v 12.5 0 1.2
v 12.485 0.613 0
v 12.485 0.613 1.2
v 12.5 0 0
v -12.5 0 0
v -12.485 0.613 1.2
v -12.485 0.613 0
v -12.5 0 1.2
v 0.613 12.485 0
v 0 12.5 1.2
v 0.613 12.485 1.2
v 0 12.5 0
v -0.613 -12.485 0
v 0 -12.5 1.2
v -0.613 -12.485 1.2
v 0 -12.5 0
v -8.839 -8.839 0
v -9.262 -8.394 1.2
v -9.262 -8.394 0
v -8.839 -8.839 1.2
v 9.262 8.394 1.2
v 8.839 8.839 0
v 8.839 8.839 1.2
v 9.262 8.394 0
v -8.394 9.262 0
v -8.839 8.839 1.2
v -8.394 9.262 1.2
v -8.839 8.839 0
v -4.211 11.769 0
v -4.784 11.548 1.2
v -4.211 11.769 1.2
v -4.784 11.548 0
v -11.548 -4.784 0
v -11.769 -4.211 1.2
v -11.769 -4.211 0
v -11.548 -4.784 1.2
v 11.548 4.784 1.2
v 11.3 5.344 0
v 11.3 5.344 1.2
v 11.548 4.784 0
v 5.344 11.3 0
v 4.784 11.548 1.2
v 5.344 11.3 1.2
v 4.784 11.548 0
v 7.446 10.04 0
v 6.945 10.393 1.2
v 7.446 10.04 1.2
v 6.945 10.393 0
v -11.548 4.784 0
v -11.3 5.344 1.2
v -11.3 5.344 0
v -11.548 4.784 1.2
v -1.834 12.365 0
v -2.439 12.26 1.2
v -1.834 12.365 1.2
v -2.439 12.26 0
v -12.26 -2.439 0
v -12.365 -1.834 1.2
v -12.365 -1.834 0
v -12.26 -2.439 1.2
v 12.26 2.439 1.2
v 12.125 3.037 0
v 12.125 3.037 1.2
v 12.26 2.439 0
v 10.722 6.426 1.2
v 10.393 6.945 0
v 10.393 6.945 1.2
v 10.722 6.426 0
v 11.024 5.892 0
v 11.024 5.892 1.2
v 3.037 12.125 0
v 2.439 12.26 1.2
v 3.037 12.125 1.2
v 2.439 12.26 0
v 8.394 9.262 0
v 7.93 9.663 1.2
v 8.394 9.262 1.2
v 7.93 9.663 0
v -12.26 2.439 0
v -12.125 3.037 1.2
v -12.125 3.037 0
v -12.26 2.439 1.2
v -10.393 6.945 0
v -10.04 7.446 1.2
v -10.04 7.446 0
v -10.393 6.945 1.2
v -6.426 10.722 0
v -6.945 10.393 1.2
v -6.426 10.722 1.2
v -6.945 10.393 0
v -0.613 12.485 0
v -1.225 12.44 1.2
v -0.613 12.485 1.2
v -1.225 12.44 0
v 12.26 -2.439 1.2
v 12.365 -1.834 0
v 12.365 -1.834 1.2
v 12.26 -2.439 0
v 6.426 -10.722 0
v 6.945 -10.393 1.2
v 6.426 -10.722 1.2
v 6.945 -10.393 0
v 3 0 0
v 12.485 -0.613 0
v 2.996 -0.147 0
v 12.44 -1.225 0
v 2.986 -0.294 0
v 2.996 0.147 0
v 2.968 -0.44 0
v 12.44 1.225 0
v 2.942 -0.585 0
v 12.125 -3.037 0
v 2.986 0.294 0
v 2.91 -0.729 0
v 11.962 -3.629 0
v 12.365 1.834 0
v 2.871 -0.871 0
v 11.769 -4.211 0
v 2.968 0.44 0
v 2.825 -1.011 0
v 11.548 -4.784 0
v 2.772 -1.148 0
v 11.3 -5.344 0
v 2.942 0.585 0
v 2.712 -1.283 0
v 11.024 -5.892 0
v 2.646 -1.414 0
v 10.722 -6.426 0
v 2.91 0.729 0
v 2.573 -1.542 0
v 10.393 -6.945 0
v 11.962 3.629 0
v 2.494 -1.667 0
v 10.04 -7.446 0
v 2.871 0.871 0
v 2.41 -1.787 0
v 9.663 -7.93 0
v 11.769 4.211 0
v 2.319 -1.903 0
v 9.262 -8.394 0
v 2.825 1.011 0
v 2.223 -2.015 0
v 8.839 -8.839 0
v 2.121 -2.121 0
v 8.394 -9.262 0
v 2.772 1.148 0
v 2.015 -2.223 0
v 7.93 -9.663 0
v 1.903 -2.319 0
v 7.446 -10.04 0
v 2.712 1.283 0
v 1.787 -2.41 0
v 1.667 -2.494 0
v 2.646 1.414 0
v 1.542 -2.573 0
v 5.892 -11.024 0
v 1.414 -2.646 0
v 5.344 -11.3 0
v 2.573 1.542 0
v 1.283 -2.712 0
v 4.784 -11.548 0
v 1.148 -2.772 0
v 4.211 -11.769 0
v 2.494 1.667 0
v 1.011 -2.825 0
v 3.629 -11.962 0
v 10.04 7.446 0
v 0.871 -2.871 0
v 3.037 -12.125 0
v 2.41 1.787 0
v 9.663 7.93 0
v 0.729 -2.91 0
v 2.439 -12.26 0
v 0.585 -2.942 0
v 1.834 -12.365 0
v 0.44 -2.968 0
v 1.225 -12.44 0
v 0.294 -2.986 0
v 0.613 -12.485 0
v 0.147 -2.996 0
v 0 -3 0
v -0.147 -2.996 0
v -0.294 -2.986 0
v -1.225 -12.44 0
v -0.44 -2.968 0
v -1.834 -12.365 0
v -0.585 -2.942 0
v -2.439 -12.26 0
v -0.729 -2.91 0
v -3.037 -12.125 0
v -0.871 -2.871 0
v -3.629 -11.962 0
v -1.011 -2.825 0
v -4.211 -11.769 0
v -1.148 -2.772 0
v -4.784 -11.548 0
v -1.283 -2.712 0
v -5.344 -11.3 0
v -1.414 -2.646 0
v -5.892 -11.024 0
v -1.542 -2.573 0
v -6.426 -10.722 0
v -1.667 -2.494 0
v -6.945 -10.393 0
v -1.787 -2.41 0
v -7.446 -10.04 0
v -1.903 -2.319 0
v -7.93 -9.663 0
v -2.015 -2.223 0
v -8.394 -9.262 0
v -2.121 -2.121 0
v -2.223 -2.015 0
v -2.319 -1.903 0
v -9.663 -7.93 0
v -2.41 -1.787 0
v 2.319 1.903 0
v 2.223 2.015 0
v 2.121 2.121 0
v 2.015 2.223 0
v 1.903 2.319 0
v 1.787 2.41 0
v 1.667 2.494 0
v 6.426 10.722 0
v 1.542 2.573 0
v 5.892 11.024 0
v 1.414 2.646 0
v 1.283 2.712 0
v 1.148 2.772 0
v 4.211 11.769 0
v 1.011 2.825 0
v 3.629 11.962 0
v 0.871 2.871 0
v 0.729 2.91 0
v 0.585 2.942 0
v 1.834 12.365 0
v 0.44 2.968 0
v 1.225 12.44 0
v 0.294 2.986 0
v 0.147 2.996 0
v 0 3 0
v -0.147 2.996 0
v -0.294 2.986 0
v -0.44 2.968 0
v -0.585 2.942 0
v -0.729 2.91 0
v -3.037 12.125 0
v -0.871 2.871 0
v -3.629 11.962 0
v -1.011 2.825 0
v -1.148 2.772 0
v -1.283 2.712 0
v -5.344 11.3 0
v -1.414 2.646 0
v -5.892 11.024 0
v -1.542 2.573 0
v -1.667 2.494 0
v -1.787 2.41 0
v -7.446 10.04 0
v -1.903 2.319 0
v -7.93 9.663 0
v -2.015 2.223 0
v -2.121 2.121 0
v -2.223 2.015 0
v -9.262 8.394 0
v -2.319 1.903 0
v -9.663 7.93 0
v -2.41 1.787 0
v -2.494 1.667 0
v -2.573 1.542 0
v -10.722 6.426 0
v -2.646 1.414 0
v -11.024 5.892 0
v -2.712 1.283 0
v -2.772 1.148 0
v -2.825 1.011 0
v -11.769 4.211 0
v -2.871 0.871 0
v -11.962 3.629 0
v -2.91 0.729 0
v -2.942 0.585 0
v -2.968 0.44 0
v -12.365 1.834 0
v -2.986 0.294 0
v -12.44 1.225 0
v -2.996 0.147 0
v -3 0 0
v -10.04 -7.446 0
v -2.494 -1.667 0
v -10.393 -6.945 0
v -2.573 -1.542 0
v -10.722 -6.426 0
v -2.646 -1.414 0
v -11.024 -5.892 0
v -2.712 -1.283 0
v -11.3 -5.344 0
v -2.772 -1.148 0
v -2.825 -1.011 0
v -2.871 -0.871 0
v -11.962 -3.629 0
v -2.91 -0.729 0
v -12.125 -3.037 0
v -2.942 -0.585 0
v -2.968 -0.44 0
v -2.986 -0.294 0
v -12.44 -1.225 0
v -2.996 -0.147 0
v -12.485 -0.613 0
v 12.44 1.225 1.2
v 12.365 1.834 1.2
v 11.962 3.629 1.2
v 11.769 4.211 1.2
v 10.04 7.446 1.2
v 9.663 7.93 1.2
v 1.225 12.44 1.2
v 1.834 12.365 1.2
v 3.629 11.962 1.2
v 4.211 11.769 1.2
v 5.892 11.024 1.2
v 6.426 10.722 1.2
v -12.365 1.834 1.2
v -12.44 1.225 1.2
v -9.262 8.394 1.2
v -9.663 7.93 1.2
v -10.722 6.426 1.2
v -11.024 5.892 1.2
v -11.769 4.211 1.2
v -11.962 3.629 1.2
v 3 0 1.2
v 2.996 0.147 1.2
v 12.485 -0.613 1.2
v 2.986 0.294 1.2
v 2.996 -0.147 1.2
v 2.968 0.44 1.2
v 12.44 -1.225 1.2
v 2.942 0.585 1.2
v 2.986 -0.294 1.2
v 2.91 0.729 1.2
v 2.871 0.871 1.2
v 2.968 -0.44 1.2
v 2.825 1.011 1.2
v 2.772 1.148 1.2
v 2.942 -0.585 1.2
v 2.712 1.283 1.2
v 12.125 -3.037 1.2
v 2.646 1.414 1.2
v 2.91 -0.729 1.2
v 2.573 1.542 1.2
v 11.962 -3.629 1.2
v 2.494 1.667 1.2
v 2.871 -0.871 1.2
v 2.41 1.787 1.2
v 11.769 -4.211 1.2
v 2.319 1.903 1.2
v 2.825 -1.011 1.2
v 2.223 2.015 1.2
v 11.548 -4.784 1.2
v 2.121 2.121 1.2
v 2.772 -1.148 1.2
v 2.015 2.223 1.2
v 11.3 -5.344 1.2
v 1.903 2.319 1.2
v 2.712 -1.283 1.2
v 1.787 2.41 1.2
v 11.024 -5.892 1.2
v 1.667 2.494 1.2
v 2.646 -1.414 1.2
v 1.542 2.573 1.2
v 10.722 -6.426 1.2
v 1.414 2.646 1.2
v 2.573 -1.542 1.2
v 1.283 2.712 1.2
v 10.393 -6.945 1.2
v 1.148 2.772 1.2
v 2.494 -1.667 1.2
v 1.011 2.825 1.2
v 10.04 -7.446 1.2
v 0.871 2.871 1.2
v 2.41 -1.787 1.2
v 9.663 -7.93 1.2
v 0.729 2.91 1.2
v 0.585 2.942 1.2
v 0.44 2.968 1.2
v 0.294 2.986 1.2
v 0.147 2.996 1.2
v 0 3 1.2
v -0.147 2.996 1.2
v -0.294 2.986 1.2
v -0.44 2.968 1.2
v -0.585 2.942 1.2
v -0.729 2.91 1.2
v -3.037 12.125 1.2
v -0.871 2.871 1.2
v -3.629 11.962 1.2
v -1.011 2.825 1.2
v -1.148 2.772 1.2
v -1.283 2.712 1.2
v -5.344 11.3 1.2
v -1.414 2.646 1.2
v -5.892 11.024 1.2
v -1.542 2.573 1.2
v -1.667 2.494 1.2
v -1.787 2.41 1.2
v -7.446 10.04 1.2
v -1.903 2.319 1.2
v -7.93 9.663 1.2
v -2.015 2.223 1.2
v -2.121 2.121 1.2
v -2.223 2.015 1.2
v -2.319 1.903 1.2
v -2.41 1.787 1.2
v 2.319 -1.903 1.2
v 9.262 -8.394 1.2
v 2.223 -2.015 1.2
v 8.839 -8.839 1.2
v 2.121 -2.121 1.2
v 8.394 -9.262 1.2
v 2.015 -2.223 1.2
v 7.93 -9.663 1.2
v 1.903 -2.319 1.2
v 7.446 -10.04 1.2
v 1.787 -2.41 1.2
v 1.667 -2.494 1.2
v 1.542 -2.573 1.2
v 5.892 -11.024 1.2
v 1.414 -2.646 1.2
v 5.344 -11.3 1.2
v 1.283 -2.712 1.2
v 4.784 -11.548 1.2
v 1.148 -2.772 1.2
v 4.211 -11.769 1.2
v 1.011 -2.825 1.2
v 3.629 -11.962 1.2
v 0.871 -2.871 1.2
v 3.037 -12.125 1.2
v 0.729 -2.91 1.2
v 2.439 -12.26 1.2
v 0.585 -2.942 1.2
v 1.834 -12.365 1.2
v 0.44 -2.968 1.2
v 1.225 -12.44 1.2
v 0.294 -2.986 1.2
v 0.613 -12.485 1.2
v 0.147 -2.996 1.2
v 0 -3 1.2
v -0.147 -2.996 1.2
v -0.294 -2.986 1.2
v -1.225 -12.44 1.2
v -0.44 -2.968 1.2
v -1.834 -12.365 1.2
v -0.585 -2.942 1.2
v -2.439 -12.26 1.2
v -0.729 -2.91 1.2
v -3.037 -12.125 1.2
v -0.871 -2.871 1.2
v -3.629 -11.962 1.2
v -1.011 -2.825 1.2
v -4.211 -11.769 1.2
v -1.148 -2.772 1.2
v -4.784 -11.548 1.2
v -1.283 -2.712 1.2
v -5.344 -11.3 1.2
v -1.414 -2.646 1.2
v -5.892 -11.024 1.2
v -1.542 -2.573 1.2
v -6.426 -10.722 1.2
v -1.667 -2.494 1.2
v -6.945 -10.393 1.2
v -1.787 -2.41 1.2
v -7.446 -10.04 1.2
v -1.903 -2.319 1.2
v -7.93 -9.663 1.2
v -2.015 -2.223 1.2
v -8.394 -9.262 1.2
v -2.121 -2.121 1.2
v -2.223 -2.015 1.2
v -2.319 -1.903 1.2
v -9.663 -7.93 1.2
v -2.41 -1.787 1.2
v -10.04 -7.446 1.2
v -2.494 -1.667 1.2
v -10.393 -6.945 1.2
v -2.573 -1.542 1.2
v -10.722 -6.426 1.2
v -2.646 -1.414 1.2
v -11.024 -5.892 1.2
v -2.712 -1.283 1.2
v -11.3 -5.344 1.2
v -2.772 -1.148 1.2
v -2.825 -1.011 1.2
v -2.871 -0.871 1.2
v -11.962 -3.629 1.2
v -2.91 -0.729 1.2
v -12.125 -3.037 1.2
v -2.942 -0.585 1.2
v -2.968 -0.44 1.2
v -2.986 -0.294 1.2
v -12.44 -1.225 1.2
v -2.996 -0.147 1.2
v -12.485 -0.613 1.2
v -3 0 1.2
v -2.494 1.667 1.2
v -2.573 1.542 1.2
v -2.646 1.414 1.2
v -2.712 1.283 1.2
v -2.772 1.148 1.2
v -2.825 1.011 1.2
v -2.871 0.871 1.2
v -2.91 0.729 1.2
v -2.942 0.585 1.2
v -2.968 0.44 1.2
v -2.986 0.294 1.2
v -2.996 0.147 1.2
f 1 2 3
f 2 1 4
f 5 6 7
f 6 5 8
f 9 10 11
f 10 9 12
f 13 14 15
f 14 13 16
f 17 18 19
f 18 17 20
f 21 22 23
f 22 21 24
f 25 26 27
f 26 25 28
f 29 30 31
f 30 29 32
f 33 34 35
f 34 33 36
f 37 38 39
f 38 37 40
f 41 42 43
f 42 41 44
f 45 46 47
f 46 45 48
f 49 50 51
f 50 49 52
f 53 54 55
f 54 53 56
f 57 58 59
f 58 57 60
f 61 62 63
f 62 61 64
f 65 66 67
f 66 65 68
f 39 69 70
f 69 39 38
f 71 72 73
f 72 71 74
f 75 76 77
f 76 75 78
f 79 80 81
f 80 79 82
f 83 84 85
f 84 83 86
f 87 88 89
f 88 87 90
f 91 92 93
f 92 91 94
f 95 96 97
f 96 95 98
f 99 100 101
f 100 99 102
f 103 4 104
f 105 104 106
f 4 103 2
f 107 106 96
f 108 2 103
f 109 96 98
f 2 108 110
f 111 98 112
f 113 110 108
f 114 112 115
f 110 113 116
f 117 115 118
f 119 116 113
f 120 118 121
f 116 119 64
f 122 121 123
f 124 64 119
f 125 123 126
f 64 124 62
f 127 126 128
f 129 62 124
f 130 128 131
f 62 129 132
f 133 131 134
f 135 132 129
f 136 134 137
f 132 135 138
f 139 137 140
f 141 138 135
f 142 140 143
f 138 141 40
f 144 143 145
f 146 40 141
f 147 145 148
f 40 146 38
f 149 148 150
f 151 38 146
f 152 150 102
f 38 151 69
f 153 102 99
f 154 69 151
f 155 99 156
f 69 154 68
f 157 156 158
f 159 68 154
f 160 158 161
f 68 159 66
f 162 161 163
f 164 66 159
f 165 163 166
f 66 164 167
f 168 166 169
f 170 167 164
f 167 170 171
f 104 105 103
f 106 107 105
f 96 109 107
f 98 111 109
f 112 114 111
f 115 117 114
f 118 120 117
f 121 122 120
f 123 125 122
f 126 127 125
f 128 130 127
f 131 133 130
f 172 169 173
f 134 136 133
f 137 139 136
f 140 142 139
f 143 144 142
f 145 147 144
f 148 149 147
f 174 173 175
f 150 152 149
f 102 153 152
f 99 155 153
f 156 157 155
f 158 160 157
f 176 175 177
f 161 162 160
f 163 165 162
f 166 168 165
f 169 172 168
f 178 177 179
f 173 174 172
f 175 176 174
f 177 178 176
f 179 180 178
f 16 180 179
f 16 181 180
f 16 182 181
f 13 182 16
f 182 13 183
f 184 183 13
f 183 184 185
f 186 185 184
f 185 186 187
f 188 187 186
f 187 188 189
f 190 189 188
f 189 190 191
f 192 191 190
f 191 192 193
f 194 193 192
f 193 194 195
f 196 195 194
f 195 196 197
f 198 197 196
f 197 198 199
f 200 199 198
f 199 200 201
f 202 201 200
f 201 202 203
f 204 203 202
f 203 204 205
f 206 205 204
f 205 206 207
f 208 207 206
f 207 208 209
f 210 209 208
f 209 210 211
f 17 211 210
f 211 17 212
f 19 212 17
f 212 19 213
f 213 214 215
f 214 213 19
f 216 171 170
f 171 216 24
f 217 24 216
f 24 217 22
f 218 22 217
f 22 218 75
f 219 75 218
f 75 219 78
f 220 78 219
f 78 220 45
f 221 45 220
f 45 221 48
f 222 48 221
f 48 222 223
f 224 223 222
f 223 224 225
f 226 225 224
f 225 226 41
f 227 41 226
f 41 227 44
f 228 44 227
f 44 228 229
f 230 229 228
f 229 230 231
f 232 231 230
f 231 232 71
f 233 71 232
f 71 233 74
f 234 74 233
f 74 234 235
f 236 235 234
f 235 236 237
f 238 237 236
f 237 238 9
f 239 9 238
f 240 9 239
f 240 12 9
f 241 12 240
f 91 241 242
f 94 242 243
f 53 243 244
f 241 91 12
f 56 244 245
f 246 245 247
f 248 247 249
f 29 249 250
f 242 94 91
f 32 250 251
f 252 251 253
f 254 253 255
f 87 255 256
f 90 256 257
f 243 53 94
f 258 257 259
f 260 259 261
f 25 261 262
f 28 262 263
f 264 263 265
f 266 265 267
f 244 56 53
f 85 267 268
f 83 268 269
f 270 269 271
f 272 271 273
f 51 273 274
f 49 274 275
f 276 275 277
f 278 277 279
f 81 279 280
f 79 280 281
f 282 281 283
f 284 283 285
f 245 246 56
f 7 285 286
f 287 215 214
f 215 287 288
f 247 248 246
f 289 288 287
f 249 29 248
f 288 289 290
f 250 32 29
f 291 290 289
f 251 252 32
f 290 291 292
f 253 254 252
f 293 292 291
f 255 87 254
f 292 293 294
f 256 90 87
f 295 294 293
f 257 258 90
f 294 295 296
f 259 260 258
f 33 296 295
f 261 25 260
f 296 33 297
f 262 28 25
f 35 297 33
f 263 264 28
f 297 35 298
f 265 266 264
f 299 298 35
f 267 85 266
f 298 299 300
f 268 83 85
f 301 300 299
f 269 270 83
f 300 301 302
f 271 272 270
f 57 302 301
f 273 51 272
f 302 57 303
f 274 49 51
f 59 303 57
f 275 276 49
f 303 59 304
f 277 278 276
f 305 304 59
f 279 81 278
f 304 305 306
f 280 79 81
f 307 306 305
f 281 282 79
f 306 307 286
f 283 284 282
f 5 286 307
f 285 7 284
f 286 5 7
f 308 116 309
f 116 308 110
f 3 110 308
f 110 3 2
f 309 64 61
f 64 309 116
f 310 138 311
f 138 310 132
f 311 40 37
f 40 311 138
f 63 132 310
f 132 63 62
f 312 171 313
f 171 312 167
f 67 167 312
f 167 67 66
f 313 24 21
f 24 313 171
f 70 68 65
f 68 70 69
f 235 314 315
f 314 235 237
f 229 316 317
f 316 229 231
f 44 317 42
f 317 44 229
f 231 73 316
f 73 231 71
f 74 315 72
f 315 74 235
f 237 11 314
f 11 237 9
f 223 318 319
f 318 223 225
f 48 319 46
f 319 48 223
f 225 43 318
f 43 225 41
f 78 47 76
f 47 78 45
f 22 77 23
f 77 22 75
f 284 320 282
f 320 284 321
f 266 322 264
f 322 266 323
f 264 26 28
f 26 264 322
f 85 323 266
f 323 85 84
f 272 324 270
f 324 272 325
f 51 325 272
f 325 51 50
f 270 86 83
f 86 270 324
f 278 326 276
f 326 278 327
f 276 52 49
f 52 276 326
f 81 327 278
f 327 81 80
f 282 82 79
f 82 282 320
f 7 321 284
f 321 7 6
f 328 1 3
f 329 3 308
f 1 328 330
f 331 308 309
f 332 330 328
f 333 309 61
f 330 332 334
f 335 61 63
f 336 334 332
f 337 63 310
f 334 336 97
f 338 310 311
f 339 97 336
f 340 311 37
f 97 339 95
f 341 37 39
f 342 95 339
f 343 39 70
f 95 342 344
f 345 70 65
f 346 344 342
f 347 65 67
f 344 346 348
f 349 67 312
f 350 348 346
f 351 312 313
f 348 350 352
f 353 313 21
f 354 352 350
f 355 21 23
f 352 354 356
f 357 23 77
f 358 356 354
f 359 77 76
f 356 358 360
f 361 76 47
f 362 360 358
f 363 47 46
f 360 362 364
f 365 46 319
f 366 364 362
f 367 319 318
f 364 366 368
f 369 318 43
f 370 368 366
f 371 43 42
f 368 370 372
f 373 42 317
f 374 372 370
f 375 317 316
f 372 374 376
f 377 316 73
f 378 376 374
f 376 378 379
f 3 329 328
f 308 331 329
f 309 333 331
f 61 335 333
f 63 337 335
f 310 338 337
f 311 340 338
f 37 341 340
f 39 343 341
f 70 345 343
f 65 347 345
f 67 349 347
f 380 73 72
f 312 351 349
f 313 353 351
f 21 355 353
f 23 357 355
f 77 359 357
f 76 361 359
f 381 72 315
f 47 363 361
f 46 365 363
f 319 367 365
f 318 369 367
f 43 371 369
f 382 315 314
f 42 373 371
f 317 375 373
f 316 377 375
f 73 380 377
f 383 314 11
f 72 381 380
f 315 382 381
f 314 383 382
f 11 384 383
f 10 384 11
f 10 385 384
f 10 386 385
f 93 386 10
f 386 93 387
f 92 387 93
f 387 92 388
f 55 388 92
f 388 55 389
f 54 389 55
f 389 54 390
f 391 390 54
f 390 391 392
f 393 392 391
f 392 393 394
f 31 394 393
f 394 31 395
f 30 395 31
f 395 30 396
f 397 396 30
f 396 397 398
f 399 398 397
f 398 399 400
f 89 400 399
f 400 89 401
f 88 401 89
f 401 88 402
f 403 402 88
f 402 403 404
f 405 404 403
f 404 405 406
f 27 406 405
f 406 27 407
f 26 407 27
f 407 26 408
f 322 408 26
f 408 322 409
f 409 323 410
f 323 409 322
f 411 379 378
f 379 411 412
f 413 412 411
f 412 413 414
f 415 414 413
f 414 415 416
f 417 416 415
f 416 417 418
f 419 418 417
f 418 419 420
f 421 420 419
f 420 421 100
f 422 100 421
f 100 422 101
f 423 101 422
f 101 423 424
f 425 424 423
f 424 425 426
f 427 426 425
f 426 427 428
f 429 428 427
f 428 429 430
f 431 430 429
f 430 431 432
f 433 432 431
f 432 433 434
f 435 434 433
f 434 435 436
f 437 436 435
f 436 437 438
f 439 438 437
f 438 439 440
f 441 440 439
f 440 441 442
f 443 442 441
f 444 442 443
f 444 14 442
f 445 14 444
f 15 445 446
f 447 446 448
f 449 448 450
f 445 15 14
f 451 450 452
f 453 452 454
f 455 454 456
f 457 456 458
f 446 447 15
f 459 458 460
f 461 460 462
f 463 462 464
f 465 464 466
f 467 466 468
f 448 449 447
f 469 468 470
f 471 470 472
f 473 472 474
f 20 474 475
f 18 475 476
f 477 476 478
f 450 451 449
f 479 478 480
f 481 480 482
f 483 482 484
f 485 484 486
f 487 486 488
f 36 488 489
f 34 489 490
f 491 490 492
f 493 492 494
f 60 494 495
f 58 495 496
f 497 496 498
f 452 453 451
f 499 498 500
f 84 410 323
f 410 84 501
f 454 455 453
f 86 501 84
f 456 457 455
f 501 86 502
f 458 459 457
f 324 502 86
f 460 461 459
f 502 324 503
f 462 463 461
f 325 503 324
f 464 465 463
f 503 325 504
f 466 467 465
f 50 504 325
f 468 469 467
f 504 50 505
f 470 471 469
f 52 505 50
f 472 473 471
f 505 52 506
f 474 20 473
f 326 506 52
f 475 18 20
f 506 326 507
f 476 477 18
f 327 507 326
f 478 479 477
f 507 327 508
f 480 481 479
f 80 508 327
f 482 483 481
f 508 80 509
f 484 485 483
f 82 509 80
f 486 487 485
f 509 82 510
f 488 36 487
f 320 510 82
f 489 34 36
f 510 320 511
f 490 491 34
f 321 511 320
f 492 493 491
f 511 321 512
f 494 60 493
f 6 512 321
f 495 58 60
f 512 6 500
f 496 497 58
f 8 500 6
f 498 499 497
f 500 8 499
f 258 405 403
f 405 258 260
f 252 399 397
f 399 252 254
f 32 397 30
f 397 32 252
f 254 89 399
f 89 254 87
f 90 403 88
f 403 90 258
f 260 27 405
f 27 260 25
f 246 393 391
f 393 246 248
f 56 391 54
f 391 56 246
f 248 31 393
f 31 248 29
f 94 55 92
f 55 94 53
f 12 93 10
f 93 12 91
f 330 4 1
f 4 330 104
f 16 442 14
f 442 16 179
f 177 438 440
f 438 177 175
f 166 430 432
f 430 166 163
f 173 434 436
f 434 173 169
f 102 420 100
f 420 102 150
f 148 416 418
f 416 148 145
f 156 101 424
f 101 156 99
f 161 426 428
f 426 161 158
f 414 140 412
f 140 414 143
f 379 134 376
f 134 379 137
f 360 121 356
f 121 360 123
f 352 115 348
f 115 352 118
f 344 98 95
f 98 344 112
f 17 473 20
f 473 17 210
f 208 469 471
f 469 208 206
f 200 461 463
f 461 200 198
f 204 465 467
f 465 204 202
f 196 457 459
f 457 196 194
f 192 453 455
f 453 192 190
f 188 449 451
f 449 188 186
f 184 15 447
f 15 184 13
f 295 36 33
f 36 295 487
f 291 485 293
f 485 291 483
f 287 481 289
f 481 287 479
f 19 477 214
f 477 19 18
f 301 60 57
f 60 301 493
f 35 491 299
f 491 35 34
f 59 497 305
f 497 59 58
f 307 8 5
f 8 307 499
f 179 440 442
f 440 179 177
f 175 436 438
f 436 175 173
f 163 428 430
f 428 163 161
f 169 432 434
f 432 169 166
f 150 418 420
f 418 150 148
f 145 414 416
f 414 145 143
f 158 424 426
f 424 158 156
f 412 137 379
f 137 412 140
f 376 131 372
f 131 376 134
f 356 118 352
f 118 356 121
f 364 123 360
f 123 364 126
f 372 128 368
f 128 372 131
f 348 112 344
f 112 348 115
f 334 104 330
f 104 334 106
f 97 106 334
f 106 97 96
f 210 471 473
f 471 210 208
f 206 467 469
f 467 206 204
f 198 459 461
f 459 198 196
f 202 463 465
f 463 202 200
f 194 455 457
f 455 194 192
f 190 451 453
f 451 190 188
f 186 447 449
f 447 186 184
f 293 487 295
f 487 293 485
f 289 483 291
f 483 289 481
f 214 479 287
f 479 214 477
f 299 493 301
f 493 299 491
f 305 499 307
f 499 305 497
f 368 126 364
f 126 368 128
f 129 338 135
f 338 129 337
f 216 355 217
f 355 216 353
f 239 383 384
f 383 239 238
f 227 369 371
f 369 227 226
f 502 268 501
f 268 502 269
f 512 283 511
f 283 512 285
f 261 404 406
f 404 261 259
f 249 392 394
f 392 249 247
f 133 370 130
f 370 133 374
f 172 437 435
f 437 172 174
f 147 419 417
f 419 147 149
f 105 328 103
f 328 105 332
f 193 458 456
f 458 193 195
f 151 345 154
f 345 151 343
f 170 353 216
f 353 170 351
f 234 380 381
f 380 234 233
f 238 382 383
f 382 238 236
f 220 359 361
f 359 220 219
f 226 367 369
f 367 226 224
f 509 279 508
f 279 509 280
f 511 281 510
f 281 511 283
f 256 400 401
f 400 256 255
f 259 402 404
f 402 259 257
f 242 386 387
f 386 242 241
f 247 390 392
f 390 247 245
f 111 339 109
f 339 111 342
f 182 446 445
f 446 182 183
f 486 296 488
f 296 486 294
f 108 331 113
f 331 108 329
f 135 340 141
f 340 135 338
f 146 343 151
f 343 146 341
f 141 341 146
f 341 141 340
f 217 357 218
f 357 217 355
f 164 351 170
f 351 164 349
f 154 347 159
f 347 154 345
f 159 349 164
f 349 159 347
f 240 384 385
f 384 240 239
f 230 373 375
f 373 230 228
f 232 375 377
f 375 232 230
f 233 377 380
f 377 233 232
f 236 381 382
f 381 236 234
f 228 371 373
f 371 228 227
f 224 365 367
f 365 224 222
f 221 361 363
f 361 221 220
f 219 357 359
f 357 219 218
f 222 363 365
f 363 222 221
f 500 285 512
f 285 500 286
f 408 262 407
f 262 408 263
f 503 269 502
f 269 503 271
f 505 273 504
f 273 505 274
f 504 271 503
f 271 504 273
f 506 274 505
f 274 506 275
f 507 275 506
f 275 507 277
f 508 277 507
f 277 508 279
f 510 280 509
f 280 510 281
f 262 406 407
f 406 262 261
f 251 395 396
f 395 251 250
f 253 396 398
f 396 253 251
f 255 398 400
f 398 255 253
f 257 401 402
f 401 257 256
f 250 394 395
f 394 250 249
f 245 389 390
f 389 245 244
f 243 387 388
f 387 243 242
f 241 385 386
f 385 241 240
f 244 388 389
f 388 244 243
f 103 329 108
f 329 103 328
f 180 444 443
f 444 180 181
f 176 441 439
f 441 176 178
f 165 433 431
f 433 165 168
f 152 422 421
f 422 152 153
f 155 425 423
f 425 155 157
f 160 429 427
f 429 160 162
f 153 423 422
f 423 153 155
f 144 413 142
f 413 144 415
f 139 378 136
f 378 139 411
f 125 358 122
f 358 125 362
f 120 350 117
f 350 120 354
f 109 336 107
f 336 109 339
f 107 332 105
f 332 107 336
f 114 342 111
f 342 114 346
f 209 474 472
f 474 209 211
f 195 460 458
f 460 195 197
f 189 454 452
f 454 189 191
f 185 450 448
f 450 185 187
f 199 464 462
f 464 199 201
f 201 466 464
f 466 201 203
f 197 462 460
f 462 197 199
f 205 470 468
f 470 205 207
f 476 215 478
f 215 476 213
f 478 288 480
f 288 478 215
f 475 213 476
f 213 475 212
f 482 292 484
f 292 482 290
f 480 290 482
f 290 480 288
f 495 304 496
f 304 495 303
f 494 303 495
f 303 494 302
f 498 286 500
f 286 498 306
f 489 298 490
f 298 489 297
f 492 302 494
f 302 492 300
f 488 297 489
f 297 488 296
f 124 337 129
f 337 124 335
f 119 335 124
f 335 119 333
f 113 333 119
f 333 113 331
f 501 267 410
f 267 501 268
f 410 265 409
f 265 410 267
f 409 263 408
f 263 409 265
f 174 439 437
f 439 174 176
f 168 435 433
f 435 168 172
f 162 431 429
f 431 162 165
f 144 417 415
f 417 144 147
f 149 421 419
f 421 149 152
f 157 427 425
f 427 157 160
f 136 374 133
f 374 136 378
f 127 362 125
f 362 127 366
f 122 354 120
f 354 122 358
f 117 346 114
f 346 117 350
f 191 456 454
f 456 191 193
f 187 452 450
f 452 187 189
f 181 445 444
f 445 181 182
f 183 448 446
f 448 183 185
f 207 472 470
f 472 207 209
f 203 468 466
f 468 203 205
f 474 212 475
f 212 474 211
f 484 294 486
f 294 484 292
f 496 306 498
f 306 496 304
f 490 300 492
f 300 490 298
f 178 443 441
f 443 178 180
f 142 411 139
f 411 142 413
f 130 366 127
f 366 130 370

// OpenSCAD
$fn = 128;

module base(){
    difference(){
        cylinder(h=1.2,d=25);
        translate([0,0,-1])
        cylinder(h=5,d=6);
    }
}

base();
